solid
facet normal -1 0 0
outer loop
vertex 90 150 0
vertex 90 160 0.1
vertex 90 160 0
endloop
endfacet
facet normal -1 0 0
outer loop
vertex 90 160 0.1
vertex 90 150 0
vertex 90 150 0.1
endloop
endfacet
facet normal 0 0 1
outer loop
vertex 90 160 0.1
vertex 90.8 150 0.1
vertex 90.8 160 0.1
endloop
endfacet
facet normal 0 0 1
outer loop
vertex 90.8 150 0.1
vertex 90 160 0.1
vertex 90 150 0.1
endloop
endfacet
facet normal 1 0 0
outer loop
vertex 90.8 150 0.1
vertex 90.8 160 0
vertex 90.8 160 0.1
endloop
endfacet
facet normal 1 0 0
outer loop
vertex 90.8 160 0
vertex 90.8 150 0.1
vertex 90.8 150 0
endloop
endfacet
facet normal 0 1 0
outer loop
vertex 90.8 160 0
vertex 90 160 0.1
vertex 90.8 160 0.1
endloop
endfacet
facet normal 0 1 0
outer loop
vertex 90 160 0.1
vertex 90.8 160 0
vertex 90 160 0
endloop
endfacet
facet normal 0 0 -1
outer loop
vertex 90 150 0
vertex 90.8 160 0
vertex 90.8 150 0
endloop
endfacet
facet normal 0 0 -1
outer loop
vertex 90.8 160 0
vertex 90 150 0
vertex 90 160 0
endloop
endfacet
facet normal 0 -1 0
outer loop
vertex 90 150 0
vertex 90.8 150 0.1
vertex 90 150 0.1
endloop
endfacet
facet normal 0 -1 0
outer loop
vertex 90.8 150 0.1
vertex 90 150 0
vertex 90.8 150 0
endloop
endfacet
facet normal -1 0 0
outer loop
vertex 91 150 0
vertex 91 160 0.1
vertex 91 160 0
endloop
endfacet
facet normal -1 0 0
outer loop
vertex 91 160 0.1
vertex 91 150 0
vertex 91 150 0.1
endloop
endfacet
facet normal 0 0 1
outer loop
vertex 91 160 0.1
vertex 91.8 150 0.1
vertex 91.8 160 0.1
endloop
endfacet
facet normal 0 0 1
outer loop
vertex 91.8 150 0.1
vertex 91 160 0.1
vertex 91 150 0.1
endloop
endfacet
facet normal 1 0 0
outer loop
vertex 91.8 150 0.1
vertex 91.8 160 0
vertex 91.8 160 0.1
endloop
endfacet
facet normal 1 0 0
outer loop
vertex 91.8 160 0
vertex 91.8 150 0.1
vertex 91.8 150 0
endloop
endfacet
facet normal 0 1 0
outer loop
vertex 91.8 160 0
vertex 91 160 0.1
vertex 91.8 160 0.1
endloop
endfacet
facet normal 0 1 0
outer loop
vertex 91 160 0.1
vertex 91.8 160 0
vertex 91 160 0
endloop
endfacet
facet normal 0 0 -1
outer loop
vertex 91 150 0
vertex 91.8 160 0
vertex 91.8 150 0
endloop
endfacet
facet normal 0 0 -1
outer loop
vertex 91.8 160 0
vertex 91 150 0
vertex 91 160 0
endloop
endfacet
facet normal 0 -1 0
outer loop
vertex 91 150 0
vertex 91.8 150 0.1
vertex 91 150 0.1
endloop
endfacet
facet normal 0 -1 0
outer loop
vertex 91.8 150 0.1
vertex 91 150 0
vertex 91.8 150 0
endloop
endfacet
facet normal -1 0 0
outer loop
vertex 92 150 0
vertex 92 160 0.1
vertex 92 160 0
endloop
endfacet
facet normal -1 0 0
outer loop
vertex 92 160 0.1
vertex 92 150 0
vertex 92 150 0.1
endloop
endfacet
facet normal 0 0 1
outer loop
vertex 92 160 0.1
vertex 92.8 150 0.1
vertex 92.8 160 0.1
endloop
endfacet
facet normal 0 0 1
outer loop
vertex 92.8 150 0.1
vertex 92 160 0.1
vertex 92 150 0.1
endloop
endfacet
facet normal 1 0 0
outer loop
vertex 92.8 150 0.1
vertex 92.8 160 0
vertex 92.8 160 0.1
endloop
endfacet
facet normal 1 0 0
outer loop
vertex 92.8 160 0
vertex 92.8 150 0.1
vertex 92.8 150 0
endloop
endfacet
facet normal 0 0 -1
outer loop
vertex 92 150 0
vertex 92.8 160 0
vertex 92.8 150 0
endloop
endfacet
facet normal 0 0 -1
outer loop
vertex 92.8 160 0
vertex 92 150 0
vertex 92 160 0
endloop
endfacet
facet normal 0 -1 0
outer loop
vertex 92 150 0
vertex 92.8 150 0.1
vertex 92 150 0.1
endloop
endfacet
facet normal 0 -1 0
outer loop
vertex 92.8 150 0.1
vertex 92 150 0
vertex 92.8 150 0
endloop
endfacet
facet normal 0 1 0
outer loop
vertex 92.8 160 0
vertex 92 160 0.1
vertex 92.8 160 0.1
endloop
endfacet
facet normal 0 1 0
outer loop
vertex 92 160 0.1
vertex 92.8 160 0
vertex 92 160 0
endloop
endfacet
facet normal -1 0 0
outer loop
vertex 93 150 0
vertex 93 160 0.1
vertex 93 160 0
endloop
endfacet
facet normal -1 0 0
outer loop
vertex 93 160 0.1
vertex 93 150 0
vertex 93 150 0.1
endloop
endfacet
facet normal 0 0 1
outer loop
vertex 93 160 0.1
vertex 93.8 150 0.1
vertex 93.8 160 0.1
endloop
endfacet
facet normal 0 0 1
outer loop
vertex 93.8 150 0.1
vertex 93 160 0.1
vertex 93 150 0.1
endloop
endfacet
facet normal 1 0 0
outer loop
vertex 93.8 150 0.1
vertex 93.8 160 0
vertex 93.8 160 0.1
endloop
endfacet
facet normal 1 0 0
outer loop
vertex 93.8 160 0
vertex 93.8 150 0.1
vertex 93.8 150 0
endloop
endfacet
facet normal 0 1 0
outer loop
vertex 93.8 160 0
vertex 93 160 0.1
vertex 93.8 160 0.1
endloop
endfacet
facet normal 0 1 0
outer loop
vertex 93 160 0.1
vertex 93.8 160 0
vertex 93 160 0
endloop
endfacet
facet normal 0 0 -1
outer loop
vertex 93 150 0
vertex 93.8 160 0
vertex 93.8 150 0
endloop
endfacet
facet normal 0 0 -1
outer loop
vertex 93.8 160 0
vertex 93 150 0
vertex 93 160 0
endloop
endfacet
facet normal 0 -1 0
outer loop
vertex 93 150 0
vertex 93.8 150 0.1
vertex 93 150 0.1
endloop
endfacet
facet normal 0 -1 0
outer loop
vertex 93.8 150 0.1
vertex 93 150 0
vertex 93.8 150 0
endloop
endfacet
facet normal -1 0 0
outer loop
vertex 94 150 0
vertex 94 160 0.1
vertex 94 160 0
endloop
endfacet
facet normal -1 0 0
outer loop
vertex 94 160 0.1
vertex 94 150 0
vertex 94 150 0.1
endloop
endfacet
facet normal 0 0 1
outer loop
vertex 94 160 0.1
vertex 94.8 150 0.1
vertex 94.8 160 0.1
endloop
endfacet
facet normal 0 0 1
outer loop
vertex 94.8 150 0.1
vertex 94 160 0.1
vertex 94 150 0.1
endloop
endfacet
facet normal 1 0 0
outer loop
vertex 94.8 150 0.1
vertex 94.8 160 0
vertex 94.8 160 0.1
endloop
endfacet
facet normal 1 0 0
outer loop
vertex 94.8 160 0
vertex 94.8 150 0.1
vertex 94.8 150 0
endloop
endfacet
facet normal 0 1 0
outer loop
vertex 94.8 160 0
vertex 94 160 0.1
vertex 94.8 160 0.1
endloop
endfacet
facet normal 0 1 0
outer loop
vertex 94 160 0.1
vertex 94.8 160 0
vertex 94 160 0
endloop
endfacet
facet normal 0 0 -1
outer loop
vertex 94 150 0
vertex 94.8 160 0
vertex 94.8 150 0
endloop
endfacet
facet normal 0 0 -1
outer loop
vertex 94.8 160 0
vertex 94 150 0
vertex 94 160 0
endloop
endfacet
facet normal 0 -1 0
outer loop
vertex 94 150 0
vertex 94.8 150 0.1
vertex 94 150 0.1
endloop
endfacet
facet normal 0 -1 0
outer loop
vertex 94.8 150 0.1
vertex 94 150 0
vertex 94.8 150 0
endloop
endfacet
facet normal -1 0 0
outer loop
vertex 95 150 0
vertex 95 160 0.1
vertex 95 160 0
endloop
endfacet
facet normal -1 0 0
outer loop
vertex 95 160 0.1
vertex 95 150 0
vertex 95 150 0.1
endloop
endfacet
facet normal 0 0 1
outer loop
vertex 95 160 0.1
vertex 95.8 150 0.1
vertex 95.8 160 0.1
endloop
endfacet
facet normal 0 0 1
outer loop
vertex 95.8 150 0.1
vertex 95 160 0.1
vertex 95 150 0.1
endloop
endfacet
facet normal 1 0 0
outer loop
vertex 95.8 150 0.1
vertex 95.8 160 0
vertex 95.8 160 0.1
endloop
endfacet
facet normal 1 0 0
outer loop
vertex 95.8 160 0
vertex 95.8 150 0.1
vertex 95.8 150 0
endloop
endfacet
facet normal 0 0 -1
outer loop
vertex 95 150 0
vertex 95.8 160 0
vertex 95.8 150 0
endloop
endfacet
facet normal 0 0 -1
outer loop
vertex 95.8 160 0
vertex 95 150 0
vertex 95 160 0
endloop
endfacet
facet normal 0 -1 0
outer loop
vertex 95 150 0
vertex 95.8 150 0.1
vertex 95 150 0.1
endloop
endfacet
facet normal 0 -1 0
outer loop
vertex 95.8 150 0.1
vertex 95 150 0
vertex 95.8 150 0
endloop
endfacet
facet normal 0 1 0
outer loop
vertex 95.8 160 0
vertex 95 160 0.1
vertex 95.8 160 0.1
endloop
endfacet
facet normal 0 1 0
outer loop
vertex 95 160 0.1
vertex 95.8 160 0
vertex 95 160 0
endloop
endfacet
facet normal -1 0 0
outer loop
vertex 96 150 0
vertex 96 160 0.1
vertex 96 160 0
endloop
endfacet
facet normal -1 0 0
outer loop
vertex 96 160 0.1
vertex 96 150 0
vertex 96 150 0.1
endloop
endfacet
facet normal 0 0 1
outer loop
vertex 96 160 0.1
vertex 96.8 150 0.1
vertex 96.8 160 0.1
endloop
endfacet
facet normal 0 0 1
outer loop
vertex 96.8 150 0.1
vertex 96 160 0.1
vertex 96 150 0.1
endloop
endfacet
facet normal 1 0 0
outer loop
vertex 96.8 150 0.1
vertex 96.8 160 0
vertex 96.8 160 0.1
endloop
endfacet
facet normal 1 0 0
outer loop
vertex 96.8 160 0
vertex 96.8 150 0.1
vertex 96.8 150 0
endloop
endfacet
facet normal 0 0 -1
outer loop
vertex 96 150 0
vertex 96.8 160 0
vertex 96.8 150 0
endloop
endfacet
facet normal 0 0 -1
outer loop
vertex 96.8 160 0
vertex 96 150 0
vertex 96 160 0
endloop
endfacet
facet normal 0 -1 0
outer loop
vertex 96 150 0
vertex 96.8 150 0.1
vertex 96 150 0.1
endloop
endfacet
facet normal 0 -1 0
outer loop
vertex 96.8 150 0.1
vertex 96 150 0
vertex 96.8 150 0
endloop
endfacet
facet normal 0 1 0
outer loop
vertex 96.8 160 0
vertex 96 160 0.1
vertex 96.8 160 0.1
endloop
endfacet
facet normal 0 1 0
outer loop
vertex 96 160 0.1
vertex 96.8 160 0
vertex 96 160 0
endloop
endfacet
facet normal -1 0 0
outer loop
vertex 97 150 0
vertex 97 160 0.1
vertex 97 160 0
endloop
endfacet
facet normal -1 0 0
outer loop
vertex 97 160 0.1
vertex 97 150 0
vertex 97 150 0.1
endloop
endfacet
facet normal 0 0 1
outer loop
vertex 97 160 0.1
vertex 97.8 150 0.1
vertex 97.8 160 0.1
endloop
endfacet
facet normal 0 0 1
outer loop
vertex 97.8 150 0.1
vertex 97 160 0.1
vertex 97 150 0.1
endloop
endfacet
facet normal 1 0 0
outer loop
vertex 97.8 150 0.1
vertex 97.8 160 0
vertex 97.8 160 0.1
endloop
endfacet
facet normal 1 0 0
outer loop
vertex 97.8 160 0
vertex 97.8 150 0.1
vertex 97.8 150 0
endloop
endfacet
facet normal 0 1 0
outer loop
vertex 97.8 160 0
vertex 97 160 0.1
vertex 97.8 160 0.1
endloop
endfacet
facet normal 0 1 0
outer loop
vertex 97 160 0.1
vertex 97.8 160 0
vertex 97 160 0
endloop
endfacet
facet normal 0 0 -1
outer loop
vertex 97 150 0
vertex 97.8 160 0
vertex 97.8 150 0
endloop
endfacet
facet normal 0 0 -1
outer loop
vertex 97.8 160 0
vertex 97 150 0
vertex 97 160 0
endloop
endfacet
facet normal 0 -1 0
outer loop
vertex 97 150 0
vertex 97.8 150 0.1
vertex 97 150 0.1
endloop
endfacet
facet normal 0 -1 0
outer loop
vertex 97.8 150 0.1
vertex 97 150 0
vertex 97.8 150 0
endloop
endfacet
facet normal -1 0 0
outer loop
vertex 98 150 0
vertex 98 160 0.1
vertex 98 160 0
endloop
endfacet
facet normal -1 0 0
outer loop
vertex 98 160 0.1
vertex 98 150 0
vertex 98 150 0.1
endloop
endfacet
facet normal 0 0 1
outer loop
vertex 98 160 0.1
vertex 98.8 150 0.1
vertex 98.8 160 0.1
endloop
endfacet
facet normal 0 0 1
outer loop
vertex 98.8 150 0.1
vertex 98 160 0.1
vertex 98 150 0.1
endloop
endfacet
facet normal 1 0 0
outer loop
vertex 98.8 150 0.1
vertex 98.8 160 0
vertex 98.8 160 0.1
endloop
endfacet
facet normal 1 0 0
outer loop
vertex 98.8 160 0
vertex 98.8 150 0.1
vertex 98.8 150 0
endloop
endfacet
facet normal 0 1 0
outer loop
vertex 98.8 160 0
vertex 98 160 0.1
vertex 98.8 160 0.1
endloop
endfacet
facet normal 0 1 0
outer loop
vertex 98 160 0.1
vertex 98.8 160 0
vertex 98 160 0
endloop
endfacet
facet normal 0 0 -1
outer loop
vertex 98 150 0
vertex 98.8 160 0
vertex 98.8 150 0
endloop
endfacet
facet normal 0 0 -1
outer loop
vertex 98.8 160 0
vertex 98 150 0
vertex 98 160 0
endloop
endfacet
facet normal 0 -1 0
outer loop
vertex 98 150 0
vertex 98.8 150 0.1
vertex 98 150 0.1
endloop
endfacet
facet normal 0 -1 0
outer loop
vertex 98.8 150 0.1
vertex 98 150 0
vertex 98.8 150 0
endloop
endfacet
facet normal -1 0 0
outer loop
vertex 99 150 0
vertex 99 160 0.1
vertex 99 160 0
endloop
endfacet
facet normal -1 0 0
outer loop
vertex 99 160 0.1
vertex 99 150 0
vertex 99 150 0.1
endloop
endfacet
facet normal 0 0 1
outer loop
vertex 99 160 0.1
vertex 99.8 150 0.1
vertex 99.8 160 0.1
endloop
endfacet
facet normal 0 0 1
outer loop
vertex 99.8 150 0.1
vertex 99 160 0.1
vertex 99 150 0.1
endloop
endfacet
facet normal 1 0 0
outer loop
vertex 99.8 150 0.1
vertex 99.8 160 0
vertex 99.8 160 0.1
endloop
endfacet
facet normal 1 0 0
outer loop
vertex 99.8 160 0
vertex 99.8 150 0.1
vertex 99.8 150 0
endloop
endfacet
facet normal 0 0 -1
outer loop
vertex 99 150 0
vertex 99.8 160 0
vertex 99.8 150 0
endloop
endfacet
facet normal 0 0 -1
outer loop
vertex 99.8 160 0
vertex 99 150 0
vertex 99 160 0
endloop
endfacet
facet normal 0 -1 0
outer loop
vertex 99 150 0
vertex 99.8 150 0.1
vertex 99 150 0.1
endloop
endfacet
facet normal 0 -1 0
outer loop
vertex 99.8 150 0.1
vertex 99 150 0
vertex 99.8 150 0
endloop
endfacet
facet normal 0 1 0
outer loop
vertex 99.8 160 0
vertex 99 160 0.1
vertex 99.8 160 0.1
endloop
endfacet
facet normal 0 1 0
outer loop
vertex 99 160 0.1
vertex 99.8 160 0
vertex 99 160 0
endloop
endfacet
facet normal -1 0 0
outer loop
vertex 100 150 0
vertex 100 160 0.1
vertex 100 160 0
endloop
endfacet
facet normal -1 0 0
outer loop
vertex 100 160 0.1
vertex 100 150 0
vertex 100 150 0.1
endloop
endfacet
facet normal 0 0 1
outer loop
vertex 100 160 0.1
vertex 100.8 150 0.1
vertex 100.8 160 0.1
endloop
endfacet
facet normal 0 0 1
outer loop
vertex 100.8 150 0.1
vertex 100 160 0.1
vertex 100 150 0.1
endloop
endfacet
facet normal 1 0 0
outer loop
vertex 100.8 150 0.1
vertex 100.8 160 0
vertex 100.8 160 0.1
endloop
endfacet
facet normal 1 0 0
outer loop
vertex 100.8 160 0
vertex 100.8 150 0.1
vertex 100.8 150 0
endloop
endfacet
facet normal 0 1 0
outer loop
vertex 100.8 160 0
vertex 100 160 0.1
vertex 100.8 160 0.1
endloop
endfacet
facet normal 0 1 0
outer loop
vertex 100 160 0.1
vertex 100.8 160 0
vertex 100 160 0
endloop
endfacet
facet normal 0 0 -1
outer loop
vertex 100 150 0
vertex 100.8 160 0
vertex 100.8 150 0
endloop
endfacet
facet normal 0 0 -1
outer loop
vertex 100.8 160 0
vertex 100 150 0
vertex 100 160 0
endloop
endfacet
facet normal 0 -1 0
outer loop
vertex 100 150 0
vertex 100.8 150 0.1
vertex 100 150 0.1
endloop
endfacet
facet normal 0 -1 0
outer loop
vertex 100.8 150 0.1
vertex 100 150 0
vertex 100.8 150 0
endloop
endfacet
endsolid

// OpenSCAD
translate([10+80,10+140,0])
        for (i = [0 : 10]){
            translate([i,0,0])
                cube(size = [0.8,10,0.1]);
    }
